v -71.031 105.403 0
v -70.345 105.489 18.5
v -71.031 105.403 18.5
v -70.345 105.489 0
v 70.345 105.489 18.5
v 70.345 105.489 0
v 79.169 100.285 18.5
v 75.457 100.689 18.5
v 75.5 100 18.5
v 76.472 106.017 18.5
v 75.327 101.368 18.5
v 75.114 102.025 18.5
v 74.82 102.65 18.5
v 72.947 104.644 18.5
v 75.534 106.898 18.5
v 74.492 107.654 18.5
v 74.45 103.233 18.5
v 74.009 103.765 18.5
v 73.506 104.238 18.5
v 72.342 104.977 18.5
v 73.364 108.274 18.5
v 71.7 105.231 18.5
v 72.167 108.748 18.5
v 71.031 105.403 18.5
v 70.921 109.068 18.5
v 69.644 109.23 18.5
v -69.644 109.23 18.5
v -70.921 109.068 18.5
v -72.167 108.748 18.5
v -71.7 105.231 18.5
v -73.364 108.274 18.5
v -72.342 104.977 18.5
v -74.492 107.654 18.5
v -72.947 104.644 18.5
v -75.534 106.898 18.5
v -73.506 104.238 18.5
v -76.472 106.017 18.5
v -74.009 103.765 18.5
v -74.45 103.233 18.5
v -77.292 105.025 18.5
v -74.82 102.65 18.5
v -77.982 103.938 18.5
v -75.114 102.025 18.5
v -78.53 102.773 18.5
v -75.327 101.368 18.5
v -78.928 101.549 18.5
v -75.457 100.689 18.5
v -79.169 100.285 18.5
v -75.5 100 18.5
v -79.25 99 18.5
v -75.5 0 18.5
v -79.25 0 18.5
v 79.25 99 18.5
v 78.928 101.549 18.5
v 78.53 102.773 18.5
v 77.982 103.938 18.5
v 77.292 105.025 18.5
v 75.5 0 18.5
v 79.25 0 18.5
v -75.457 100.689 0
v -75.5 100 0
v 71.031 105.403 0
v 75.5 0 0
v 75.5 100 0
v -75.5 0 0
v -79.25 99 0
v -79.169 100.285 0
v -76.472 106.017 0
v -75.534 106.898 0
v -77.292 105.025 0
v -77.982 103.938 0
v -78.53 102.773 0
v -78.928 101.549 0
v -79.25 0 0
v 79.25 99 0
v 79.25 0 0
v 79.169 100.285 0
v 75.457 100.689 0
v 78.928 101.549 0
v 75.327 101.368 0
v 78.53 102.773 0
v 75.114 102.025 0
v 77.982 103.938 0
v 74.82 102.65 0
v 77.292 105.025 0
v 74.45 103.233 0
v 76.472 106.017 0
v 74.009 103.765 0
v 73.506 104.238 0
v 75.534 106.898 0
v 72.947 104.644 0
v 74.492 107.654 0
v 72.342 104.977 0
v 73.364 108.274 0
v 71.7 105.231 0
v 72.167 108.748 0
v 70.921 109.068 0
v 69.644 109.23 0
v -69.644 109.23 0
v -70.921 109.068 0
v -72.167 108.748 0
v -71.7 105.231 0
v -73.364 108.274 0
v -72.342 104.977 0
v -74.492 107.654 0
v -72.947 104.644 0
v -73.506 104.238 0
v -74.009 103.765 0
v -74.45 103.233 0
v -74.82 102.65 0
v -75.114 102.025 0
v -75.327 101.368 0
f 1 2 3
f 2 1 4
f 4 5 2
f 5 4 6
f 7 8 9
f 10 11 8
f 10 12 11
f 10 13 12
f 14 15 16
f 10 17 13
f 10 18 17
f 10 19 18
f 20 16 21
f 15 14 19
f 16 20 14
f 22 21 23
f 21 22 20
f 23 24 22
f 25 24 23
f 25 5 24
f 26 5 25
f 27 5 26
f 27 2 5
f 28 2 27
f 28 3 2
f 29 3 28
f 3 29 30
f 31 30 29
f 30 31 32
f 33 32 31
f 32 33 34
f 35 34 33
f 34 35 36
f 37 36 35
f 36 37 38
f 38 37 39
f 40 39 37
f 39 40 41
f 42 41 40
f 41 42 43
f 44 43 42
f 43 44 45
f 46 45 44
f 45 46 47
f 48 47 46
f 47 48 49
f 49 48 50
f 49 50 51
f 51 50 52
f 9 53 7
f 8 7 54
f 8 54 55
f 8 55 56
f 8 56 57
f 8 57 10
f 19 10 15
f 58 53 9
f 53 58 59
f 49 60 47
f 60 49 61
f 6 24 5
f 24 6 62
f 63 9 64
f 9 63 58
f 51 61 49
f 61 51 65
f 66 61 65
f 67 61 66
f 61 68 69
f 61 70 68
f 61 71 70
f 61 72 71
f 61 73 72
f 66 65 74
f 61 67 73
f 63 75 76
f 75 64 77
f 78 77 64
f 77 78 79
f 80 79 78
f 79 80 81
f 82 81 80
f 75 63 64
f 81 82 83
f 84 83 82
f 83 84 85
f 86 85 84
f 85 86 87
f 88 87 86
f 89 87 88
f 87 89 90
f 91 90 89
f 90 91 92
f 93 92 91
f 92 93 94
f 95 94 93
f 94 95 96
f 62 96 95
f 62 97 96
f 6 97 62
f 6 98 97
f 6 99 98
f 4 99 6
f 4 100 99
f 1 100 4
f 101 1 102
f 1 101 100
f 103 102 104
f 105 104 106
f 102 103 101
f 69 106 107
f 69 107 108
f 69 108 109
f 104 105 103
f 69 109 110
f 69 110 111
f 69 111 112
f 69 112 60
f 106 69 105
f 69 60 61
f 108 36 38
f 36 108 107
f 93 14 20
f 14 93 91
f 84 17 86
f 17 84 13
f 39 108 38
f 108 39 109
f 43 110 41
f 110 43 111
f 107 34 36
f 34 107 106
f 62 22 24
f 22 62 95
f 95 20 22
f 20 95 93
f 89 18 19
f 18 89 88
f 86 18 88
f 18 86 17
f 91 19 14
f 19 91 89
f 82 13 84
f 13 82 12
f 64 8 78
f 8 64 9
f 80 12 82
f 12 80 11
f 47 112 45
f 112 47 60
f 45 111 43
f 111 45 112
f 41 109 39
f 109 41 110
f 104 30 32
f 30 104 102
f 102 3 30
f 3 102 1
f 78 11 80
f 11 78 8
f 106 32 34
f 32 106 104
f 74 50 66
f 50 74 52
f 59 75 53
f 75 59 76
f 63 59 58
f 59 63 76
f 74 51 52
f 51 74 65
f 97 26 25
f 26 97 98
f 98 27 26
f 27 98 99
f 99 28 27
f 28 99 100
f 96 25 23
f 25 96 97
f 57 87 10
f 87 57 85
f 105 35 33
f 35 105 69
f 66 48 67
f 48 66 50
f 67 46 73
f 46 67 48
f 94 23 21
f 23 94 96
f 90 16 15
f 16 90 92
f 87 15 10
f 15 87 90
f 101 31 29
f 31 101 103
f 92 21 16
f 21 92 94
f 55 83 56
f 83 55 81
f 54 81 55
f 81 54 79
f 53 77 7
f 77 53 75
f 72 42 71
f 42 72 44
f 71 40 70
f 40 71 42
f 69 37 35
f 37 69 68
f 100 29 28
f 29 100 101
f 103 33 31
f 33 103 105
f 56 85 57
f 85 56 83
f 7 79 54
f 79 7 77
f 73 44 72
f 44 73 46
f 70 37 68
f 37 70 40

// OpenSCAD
$fn = 50;


difference() {
	union() {
		hull() {
			translate(v = [-69.0000000000, 99.0000000000, 0]) {
				cylinder(h = 18.5000000000, r = 10.2500000000);
			}
			translate(v = [69.0000000000, 99.0000000000, 0]) {
				cylinder(h = 18.5000000000, r = 10.2500000000);
			}
			translate(v = [-69.0000000000, -99.0000000000, 0]) {
				cylinder(h = 18.5000000000, r = 10.2500000000);
			}
			translate(v = [69.0000000000, -99.0000000000, 0]) {
				cylinder(h = 18.5000000000, r = 10.2500000000);
			}
		}
	}
	union() {
		hull() {
			translate(v = [-70.0000000000, 100.0000000000, 0]) {
				cylinder(h = 18.5000000000, r = 5.5000000000);
			}
			translate(v = [70.0000000000, 100.0000000000, 0]) {
				cylinder(h = 18.5000000000, r = 5.5000000000);
			}
			translate(v = [-70.0000000000, -100.0000000000, 0]) {
				cylinder(h = 18.5000000000, r = 5.5000000000);
			}
			translate(v = [70.0000000000, -100.0000000000, 0]) {
				cylinder(h = 18.5000000000, r = 5.5000000000);
			}
		}
		#translate(v = [-79.2500000000, -218.5000000000, 0]) {
			cube(size = [158.5000000000, 218.5000000000, 18.5000000000]);
		}
	}
}
